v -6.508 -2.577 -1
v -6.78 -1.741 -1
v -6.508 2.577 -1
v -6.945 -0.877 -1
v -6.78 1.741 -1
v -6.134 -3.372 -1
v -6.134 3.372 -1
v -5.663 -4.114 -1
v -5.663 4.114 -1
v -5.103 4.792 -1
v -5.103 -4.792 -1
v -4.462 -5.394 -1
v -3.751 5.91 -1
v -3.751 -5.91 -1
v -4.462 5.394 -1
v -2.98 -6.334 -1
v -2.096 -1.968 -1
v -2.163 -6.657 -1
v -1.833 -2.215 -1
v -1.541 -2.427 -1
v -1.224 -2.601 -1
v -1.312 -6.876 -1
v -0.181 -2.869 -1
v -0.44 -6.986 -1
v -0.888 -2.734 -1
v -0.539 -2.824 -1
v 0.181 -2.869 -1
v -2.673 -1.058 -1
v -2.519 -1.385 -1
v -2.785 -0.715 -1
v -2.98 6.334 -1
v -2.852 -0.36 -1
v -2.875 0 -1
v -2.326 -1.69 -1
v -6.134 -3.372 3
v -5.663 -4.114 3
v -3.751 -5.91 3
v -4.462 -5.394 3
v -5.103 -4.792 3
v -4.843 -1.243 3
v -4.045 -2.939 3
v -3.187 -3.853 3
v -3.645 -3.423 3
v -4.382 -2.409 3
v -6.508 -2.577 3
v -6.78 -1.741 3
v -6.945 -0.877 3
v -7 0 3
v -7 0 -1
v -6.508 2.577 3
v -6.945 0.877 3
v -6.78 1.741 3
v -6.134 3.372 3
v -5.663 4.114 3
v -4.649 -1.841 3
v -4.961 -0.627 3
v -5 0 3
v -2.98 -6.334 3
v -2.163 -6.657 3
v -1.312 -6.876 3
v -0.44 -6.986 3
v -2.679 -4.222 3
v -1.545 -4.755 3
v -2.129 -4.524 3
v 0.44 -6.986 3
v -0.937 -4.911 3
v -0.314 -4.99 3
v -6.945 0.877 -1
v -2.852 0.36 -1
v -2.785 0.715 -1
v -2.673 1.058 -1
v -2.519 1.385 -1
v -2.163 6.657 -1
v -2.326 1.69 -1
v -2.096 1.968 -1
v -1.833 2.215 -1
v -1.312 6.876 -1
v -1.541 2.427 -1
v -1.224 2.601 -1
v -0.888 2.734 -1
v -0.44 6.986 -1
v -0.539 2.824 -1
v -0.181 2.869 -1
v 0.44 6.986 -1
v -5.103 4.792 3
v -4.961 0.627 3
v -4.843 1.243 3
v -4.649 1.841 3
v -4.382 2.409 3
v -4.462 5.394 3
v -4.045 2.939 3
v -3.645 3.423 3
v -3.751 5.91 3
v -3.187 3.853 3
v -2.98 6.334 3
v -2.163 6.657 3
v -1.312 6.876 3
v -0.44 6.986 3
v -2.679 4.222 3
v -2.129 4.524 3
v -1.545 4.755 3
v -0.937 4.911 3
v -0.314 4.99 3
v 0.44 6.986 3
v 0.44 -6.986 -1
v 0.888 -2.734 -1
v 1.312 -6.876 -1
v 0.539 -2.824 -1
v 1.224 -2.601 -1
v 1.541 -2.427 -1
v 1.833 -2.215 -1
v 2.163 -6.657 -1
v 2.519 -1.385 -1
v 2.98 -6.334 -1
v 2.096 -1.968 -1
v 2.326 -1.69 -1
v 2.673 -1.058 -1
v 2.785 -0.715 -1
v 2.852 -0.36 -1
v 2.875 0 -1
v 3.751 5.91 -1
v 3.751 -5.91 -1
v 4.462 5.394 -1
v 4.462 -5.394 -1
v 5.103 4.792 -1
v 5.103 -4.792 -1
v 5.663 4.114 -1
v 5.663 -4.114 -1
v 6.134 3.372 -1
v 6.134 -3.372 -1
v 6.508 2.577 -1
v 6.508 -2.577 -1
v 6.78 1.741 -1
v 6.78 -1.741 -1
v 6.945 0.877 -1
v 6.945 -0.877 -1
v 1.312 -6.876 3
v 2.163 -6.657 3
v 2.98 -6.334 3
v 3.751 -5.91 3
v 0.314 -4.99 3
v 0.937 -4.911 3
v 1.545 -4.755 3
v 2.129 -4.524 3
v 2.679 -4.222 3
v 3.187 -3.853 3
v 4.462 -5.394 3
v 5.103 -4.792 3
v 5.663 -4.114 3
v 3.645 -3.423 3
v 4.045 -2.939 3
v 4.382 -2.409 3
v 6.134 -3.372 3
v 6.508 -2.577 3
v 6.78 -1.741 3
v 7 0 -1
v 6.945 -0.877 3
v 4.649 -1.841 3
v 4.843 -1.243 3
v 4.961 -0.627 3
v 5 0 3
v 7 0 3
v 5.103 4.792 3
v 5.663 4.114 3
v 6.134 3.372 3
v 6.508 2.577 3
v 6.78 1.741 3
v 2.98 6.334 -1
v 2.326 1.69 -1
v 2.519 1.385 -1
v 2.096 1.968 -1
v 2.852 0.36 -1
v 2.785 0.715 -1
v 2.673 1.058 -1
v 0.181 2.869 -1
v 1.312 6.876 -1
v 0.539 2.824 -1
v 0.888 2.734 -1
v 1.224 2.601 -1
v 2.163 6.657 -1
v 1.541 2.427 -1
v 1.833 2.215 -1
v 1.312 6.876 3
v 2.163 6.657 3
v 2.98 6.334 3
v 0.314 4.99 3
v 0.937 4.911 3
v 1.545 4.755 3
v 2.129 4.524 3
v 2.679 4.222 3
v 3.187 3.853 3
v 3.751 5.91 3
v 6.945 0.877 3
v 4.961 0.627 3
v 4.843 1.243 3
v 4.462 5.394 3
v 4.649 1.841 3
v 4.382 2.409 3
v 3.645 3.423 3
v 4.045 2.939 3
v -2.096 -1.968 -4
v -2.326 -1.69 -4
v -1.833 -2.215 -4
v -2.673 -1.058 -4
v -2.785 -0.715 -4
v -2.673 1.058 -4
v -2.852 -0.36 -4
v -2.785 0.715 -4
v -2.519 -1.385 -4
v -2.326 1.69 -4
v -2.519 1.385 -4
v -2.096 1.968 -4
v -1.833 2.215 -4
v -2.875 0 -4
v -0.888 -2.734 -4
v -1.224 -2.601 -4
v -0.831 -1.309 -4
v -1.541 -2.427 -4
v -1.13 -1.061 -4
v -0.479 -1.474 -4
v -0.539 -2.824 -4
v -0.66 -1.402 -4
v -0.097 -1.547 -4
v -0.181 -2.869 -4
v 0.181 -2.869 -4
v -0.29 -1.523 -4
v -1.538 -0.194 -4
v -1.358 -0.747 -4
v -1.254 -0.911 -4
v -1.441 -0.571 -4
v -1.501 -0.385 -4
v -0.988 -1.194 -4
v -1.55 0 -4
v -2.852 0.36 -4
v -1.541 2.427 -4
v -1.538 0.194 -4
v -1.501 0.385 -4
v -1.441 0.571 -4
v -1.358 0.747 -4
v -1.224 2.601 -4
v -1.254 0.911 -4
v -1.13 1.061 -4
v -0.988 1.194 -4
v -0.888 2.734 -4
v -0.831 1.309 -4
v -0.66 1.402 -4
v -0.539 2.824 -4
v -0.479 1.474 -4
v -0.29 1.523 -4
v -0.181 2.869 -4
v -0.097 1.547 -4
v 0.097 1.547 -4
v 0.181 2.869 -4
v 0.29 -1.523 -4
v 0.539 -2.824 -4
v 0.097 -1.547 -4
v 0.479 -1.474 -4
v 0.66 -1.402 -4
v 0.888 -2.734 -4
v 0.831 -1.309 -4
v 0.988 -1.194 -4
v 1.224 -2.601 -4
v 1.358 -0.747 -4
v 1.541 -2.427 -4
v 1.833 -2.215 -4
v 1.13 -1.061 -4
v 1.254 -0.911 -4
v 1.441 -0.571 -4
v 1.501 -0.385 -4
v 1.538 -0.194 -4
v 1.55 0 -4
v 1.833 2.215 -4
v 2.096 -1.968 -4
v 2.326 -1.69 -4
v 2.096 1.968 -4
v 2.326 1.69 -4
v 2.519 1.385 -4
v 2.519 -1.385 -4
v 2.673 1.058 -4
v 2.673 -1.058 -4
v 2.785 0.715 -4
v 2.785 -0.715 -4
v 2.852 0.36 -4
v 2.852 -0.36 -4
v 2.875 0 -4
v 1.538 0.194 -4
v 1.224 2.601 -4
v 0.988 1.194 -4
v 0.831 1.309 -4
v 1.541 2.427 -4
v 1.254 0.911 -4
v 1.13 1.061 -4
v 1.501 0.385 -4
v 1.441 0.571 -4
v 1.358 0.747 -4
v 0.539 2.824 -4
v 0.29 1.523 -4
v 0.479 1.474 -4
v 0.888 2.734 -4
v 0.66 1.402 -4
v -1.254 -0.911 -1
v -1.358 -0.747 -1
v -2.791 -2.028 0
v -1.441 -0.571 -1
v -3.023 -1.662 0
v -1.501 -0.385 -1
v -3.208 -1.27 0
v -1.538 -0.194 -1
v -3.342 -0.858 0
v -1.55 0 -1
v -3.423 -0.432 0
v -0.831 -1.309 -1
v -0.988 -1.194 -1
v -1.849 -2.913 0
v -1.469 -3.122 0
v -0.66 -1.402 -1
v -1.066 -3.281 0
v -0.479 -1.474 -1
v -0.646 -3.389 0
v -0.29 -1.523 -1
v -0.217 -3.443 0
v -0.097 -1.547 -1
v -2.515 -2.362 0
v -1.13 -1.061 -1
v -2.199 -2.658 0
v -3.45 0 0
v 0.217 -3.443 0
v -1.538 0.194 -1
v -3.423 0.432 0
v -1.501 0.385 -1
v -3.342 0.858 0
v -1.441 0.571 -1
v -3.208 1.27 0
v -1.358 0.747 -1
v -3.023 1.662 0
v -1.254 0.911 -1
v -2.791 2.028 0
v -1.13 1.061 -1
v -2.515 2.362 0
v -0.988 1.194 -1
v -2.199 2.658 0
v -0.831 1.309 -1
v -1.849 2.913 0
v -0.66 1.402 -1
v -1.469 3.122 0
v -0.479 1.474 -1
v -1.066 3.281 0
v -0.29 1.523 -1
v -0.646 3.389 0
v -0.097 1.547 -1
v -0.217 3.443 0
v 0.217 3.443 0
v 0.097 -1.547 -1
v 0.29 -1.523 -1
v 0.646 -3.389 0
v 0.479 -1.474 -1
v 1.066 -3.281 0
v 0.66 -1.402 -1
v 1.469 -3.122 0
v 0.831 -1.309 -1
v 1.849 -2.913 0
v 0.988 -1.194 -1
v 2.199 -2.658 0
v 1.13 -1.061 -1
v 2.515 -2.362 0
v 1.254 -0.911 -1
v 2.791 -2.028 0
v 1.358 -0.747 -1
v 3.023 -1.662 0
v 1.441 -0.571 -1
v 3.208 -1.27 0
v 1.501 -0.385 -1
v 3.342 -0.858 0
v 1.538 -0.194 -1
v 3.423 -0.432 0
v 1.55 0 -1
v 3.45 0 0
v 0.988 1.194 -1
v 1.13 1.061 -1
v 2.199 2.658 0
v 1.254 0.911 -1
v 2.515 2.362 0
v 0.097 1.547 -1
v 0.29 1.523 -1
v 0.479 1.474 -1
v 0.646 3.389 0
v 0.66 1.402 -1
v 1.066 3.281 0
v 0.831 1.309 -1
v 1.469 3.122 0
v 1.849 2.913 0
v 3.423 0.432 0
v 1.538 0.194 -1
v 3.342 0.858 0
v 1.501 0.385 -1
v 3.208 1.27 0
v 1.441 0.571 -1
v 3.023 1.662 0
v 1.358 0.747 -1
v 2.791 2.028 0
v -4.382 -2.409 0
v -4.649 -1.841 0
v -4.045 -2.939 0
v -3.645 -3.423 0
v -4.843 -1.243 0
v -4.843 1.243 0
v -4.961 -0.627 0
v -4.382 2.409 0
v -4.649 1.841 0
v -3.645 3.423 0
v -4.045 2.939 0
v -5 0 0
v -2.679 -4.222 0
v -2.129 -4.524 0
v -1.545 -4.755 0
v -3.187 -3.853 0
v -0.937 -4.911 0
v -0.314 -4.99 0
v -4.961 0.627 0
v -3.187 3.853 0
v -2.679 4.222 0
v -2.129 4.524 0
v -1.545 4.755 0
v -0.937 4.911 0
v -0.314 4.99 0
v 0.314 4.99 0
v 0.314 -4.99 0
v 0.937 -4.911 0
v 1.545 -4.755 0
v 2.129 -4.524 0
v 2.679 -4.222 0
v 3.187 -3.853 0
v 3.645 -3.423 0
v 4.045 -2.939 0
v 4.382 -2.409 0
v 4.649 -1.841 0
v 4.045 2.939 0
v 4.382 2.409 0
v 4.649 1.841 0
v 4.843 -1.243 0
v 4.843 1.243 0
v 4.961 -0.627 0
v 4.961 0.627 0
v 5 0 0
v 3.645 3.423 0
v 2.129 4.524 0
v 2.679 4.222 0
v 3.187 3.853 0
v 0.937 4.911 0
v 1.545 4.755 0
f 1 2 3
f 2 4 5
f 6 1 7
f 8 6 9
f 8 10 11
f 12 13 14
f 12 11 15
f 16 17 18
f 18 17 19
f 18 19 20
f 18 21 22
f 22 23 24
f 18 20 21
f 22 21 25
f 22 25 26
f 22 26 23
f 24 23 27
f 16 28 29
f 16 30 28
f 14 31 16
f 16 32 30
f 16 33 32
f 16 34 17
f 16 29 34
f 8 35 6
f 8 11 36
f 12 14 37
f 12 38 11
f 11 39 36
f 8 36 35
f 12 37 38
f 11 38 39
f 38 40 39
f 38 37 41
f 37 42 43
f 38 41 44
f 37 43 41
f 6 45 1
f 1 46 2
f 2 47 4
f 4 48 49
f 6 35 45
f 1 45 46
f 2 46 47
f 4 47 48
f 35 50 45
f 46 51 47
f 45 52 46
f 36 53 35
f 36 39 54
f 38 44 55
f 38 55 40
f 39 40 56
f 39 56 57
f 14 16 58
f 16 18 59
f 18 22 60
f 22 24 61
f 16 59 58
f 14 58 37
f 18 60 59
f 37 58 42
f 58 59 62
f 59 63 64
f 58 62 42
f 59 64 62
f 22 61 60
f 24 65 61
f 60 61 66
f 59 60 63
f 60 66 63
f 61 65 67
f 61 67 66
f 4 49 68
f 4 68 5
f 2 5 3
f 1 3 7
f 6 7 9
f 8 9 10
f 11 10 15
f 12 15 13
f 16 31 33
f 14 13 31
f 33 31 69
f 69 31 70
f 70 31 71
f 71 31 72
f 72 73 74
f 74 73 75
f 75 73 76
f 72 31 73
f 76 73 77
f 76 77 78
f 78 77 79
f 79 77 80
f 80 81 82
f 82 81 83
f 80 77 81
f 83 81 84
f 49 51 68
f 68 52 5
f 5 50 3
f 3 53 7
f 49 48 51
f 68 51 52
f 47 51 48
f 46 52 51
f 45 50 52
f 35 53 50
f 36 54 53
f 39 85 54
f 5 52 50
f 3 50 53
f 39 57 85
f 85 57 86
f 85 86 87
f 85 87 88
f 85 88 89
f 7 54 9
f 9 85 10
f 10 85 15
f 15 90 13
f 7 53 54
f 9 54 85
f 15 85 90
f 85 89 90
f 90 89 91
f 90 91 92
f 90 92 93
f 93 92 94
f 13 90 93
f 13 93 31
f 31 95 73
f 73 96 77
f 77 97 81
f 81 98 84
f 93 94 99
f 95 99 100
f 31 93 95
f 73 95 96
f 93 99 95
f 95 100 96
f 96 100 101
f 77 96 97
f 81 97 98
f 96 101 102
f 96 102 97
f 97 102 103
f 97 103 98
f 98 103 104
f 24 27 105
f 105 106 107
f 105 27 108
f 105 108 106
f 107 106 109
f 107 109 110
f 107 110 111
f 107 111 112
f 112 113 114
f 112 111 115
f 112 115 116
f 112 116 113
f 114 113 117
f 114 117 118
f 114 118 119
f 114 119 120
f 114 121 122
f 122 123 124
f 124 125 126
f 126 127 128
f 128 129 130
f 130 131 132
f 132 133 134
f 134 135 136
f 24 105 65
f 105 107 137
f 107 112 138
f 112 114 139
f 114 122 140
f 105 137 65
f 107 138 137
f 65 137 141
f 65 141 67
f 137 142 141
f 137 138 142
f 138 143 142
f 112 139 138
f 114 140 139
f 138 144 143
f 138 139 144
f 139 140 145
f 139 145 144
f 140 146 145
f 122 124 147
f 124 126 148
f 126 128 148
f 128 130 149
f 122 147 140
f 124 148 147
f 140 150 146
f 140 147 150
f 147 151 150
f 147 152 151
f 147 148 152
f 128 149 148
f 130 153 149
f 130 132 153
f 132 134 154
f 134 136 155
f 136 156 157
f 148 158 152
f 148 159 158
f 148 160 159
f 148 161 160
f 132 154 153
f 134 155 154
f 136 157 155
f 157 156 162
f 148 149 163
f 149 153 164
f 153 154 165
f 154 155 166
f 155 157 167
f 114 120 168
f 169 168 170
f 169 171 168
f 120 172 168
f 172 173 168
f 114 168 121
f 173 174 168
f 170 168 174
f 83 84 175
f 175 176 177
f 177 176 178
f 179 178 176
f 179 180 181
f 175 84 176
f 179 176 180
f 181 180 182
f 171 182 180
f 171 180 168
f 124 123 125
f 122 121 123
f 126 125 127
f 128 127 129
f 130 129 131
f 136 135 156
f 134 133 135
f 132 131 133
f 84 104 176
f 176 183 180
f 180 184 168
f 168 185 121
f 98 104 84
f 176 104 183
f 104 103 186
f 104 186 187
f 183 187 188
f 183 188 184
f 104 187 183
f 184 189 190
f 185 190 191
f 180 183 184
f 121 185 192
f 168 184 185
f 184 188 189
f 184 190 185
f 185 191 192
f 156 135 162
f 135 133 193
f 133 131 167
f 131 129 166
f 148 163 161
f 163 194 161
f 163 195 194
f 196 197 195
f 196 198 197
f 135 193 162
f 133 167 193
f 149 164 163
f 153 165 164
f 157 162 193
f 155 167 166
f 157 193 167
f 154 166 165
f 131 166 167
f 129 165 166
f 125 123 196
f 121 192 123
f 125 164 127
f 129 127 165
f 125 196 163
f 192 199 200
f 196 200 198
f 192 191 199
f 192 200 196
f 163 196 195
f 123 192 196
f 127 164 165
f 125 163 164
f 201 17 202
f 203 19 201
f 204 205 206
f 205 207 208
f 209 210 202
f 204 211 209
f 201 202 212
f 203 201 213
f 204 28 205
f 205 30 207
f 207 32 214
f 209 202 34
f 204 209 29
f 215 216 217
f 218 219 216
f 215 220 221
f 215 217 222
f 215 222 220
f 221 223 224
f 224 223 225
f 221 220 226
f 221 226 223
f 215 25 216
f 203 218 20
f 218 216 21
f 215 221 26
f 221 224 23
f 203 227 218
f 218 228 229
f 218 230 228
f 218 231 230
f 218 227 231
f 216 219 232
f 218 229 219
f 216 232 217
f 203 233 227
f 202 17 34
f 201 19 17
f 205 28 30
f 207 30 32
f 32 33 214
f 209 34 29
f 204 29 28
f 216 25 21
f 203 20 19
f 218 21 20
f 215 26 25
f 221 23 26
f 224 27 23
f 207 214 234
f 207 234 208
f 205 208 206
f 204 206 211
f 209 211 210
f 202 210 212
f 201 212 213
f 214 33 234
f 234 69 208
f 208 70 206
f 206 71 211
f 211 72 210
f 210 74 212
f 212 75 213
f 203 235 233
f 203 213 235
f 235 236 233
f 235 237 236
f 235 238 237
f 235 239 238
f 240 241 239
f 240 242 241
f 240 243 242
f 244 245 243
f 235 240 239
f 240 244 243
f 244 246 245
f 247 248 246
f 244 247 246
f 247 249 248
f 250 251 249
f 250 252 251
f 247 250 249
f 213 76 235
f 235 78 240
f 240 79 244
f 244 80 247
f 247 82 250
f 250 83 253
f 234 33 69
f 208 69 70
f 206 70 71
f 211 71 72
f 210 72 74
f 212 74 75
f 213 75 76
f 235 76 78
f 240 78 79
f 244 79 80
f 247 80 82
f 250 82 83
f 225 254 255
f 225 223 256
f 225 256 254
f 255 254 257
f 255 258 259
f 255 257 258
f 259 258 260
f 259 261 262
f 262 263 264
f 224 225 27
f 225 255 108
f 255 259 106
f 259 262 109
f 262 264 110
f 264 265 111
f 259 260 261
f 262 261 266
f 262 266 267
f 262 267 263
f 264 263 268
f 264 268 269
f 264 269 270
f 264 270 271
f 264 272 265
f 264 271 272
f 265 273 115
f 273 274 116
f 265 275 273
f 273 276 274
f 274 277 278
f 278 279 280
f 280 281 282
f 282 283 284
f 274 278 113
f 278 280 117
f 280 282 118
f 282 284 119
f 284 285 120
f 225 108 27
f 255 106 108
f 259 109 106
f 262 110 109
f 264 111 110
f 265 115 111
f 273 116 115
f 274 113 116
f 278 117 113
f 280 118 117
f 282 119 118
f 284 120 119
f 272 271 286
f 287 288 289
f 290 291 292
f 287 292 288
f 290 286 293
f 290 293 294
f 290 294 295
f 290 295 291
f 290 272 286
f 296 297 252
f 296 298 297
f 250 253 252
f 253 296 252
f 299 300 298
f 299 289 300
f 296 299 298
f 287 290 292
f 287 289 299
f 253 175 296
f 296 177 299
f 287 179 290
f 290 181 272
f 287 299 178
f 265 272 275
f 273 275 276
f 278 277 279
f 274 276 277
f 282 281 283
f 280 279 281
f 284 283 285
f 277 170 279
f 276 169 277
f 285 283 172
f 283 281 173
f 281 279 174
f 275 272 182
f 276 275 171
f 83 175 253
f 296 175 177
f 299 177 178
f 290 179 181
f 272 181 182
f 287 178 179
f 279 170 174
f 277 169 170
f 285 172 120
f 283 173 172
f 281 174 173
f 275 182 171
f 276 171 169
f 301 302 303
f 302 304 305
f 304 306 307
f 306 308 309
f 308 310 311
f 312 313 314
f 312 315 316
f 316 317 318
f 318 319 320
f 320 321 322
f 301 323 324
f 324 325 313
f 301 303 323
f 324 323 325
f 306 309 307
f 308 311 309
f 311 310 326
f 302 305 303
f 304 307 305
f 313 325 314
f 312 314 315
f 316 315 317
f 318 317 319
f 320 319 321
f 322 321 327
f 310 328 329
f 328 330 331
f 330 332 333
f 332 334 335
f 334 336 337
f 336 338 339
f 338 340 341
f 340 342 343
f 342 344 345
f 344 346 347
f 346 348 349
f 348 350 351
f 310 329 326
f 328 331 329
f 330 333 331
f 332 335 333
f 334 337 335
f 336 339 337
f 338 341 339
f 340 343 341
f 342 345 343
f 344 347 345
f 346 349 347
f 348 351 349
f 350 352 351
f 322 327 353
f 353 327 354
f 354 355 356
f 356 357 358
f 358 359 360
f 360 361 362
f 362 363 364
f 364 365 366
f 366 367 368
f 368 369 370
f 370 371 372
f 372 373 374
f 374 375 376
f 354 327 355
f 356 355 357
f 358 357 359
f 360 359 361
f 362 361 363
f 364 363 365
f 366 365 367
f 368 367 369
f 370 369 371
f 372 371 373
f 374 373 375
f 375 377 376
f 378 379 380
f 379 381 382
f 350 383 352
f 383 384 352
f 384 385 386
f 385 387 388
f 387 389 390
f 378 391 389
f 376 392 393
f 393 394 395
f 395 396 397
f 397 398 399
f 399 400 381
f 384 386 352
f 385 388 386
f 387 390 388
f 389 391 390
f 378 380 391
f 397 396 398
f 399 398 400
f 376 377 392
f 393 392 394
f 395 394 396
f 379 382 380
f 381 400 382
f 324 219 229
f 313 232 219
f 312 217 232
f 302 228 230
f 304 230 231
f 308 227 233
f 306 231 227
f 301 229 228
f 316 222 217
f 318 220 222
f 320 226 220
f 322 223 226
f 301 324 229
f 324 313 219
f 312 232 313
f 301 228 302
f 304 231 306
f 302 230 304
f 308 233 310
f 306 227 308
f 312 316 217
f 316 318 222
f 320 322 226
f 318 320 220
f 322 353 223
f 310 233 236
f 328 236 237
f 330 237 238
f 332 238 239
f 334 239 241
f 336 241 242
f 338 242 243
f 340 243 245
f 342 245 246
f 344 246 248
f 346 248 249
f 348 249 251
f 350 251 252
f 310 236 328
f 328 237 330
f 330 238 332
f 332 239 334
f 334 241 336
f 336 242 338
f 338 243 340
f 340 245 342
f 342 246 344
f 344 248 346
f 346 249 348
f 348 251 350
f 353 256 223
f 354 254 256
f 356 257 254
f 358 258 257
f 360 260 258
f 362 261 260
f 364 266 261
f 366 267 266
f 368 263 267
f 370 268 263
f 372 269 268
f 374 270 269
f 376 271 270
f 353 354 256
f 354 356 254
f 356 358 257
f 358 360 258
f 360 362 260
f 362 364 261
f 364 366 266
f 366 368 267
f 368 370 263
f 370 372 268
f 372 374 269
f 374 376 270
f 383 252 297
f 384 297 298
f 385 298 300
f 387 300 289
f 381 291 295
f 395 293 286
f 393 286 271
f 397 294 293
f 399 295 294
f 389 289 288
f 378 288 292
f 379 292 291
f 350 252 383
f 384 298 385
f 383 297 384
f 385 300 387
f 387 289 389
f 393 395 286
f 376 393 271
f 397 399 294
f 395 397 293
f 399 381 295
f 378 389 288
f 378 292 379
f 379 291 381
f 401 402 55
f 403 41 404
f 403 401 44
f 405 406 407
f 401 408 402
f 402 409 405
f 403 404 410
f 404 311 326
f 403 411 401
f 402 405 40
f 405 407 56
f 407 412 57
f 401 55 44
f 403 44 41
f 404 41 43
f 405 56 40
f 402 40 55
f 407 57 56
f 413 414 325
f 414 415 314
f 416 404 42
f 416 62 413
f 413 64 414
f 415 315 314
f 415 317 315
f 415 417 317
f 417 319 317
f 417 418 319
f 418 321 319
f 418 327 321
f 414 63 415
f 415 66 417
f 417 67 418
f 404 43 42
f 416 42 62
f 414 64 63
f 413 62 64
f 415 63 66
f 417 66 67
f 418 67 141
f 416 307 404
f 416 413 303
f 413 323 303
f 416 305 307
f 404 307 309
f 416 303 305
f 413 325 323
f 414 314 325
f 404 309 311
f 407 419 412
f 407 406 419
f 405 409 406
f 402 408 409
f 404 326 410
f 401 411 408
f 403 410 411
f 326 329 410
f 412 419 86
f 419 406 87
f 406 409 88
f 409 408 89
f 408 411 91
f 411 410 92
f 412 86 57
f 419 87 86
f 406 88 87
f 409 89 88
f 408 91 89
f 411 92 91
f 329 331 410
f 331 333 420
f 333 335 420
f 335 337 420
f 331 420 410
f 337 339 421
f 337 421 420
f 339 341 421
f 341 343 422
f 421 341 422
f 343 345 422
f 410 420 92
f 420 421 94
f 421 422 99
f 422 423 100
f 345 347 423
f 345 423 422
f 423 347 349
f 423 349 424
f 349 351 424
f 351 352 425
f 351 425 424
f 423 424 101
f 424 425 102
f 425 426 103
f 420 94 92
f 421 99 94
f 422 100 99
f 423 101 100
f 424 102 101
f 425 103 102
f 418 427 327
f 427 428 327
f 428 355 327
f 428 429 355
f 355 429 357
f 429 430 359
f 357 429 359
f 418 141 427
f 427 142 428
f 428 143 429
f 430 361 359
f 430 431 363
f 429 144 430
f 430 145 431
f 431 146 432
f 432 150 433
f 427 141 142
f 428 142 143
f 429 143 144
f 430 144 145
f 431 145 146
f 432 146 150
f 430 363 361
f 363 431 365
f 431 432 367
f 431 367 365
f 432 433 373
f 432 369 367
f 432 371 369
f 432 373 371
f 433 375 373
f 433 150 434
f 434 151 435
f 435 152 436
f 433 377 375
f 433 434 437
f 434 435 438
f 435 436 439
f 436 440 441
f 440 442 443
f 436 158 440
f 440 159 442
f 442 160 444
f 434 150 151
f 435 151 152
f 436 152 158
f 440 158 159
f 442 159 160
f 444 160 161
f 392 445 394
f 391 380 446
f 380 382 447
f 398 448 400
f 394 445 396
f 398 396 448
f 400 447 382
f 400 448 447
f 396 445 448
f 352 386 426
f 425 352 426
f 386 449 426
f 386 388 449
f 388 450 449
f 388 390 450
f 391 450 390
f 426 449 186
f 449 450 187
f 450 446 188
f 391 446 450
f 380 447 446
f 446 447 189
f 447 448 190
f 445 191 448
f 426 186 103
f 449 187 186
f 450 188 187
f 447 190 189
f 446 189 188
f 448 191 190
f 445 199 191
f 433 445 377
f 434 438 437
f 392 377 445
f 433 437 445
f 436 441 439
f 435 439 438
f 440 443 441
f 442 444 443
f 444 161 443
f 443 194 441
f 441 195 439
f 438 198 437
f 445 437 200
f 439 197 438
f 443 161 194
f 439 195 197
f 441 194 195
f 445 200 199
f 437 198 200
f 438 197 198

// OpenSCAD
$fn = 50;

difference() {
	union() {
		translate(v = [0, 0, -1.0]) {
			cylinder(h = 4.0, r = 7.0);
		}
		#translate(v = [0, 0, -4.0]) {
			cylinder(h = 4.0, r = 2.875);
		}
	}
	union() {
		translate(v = [0, 0, 0]) {
			rotate(a = [0, 0, 0]) {
				difference() {
					union() {
						translate(v = [0, 0, -4.0]) {
							cylinder(h = 4.0, r = 1.25);
						}
						translate(v = [0, 0, -1.0]) {
							cylinder(h = 1.0, r1 = 1.55, r2 = 3.45);
						}
						translate(v = [0, 0, -4.0]) {
							cylinder(h = 4.0, r = 1.55);
						}
						translate(v = [0, 0, -4.0]) {
							cylinder(h = 4.0, r = 1.25);
						}
					}
					union();
				}
			}
		}
		#cylinder(h = 3, r = 5.0);
	}
}
